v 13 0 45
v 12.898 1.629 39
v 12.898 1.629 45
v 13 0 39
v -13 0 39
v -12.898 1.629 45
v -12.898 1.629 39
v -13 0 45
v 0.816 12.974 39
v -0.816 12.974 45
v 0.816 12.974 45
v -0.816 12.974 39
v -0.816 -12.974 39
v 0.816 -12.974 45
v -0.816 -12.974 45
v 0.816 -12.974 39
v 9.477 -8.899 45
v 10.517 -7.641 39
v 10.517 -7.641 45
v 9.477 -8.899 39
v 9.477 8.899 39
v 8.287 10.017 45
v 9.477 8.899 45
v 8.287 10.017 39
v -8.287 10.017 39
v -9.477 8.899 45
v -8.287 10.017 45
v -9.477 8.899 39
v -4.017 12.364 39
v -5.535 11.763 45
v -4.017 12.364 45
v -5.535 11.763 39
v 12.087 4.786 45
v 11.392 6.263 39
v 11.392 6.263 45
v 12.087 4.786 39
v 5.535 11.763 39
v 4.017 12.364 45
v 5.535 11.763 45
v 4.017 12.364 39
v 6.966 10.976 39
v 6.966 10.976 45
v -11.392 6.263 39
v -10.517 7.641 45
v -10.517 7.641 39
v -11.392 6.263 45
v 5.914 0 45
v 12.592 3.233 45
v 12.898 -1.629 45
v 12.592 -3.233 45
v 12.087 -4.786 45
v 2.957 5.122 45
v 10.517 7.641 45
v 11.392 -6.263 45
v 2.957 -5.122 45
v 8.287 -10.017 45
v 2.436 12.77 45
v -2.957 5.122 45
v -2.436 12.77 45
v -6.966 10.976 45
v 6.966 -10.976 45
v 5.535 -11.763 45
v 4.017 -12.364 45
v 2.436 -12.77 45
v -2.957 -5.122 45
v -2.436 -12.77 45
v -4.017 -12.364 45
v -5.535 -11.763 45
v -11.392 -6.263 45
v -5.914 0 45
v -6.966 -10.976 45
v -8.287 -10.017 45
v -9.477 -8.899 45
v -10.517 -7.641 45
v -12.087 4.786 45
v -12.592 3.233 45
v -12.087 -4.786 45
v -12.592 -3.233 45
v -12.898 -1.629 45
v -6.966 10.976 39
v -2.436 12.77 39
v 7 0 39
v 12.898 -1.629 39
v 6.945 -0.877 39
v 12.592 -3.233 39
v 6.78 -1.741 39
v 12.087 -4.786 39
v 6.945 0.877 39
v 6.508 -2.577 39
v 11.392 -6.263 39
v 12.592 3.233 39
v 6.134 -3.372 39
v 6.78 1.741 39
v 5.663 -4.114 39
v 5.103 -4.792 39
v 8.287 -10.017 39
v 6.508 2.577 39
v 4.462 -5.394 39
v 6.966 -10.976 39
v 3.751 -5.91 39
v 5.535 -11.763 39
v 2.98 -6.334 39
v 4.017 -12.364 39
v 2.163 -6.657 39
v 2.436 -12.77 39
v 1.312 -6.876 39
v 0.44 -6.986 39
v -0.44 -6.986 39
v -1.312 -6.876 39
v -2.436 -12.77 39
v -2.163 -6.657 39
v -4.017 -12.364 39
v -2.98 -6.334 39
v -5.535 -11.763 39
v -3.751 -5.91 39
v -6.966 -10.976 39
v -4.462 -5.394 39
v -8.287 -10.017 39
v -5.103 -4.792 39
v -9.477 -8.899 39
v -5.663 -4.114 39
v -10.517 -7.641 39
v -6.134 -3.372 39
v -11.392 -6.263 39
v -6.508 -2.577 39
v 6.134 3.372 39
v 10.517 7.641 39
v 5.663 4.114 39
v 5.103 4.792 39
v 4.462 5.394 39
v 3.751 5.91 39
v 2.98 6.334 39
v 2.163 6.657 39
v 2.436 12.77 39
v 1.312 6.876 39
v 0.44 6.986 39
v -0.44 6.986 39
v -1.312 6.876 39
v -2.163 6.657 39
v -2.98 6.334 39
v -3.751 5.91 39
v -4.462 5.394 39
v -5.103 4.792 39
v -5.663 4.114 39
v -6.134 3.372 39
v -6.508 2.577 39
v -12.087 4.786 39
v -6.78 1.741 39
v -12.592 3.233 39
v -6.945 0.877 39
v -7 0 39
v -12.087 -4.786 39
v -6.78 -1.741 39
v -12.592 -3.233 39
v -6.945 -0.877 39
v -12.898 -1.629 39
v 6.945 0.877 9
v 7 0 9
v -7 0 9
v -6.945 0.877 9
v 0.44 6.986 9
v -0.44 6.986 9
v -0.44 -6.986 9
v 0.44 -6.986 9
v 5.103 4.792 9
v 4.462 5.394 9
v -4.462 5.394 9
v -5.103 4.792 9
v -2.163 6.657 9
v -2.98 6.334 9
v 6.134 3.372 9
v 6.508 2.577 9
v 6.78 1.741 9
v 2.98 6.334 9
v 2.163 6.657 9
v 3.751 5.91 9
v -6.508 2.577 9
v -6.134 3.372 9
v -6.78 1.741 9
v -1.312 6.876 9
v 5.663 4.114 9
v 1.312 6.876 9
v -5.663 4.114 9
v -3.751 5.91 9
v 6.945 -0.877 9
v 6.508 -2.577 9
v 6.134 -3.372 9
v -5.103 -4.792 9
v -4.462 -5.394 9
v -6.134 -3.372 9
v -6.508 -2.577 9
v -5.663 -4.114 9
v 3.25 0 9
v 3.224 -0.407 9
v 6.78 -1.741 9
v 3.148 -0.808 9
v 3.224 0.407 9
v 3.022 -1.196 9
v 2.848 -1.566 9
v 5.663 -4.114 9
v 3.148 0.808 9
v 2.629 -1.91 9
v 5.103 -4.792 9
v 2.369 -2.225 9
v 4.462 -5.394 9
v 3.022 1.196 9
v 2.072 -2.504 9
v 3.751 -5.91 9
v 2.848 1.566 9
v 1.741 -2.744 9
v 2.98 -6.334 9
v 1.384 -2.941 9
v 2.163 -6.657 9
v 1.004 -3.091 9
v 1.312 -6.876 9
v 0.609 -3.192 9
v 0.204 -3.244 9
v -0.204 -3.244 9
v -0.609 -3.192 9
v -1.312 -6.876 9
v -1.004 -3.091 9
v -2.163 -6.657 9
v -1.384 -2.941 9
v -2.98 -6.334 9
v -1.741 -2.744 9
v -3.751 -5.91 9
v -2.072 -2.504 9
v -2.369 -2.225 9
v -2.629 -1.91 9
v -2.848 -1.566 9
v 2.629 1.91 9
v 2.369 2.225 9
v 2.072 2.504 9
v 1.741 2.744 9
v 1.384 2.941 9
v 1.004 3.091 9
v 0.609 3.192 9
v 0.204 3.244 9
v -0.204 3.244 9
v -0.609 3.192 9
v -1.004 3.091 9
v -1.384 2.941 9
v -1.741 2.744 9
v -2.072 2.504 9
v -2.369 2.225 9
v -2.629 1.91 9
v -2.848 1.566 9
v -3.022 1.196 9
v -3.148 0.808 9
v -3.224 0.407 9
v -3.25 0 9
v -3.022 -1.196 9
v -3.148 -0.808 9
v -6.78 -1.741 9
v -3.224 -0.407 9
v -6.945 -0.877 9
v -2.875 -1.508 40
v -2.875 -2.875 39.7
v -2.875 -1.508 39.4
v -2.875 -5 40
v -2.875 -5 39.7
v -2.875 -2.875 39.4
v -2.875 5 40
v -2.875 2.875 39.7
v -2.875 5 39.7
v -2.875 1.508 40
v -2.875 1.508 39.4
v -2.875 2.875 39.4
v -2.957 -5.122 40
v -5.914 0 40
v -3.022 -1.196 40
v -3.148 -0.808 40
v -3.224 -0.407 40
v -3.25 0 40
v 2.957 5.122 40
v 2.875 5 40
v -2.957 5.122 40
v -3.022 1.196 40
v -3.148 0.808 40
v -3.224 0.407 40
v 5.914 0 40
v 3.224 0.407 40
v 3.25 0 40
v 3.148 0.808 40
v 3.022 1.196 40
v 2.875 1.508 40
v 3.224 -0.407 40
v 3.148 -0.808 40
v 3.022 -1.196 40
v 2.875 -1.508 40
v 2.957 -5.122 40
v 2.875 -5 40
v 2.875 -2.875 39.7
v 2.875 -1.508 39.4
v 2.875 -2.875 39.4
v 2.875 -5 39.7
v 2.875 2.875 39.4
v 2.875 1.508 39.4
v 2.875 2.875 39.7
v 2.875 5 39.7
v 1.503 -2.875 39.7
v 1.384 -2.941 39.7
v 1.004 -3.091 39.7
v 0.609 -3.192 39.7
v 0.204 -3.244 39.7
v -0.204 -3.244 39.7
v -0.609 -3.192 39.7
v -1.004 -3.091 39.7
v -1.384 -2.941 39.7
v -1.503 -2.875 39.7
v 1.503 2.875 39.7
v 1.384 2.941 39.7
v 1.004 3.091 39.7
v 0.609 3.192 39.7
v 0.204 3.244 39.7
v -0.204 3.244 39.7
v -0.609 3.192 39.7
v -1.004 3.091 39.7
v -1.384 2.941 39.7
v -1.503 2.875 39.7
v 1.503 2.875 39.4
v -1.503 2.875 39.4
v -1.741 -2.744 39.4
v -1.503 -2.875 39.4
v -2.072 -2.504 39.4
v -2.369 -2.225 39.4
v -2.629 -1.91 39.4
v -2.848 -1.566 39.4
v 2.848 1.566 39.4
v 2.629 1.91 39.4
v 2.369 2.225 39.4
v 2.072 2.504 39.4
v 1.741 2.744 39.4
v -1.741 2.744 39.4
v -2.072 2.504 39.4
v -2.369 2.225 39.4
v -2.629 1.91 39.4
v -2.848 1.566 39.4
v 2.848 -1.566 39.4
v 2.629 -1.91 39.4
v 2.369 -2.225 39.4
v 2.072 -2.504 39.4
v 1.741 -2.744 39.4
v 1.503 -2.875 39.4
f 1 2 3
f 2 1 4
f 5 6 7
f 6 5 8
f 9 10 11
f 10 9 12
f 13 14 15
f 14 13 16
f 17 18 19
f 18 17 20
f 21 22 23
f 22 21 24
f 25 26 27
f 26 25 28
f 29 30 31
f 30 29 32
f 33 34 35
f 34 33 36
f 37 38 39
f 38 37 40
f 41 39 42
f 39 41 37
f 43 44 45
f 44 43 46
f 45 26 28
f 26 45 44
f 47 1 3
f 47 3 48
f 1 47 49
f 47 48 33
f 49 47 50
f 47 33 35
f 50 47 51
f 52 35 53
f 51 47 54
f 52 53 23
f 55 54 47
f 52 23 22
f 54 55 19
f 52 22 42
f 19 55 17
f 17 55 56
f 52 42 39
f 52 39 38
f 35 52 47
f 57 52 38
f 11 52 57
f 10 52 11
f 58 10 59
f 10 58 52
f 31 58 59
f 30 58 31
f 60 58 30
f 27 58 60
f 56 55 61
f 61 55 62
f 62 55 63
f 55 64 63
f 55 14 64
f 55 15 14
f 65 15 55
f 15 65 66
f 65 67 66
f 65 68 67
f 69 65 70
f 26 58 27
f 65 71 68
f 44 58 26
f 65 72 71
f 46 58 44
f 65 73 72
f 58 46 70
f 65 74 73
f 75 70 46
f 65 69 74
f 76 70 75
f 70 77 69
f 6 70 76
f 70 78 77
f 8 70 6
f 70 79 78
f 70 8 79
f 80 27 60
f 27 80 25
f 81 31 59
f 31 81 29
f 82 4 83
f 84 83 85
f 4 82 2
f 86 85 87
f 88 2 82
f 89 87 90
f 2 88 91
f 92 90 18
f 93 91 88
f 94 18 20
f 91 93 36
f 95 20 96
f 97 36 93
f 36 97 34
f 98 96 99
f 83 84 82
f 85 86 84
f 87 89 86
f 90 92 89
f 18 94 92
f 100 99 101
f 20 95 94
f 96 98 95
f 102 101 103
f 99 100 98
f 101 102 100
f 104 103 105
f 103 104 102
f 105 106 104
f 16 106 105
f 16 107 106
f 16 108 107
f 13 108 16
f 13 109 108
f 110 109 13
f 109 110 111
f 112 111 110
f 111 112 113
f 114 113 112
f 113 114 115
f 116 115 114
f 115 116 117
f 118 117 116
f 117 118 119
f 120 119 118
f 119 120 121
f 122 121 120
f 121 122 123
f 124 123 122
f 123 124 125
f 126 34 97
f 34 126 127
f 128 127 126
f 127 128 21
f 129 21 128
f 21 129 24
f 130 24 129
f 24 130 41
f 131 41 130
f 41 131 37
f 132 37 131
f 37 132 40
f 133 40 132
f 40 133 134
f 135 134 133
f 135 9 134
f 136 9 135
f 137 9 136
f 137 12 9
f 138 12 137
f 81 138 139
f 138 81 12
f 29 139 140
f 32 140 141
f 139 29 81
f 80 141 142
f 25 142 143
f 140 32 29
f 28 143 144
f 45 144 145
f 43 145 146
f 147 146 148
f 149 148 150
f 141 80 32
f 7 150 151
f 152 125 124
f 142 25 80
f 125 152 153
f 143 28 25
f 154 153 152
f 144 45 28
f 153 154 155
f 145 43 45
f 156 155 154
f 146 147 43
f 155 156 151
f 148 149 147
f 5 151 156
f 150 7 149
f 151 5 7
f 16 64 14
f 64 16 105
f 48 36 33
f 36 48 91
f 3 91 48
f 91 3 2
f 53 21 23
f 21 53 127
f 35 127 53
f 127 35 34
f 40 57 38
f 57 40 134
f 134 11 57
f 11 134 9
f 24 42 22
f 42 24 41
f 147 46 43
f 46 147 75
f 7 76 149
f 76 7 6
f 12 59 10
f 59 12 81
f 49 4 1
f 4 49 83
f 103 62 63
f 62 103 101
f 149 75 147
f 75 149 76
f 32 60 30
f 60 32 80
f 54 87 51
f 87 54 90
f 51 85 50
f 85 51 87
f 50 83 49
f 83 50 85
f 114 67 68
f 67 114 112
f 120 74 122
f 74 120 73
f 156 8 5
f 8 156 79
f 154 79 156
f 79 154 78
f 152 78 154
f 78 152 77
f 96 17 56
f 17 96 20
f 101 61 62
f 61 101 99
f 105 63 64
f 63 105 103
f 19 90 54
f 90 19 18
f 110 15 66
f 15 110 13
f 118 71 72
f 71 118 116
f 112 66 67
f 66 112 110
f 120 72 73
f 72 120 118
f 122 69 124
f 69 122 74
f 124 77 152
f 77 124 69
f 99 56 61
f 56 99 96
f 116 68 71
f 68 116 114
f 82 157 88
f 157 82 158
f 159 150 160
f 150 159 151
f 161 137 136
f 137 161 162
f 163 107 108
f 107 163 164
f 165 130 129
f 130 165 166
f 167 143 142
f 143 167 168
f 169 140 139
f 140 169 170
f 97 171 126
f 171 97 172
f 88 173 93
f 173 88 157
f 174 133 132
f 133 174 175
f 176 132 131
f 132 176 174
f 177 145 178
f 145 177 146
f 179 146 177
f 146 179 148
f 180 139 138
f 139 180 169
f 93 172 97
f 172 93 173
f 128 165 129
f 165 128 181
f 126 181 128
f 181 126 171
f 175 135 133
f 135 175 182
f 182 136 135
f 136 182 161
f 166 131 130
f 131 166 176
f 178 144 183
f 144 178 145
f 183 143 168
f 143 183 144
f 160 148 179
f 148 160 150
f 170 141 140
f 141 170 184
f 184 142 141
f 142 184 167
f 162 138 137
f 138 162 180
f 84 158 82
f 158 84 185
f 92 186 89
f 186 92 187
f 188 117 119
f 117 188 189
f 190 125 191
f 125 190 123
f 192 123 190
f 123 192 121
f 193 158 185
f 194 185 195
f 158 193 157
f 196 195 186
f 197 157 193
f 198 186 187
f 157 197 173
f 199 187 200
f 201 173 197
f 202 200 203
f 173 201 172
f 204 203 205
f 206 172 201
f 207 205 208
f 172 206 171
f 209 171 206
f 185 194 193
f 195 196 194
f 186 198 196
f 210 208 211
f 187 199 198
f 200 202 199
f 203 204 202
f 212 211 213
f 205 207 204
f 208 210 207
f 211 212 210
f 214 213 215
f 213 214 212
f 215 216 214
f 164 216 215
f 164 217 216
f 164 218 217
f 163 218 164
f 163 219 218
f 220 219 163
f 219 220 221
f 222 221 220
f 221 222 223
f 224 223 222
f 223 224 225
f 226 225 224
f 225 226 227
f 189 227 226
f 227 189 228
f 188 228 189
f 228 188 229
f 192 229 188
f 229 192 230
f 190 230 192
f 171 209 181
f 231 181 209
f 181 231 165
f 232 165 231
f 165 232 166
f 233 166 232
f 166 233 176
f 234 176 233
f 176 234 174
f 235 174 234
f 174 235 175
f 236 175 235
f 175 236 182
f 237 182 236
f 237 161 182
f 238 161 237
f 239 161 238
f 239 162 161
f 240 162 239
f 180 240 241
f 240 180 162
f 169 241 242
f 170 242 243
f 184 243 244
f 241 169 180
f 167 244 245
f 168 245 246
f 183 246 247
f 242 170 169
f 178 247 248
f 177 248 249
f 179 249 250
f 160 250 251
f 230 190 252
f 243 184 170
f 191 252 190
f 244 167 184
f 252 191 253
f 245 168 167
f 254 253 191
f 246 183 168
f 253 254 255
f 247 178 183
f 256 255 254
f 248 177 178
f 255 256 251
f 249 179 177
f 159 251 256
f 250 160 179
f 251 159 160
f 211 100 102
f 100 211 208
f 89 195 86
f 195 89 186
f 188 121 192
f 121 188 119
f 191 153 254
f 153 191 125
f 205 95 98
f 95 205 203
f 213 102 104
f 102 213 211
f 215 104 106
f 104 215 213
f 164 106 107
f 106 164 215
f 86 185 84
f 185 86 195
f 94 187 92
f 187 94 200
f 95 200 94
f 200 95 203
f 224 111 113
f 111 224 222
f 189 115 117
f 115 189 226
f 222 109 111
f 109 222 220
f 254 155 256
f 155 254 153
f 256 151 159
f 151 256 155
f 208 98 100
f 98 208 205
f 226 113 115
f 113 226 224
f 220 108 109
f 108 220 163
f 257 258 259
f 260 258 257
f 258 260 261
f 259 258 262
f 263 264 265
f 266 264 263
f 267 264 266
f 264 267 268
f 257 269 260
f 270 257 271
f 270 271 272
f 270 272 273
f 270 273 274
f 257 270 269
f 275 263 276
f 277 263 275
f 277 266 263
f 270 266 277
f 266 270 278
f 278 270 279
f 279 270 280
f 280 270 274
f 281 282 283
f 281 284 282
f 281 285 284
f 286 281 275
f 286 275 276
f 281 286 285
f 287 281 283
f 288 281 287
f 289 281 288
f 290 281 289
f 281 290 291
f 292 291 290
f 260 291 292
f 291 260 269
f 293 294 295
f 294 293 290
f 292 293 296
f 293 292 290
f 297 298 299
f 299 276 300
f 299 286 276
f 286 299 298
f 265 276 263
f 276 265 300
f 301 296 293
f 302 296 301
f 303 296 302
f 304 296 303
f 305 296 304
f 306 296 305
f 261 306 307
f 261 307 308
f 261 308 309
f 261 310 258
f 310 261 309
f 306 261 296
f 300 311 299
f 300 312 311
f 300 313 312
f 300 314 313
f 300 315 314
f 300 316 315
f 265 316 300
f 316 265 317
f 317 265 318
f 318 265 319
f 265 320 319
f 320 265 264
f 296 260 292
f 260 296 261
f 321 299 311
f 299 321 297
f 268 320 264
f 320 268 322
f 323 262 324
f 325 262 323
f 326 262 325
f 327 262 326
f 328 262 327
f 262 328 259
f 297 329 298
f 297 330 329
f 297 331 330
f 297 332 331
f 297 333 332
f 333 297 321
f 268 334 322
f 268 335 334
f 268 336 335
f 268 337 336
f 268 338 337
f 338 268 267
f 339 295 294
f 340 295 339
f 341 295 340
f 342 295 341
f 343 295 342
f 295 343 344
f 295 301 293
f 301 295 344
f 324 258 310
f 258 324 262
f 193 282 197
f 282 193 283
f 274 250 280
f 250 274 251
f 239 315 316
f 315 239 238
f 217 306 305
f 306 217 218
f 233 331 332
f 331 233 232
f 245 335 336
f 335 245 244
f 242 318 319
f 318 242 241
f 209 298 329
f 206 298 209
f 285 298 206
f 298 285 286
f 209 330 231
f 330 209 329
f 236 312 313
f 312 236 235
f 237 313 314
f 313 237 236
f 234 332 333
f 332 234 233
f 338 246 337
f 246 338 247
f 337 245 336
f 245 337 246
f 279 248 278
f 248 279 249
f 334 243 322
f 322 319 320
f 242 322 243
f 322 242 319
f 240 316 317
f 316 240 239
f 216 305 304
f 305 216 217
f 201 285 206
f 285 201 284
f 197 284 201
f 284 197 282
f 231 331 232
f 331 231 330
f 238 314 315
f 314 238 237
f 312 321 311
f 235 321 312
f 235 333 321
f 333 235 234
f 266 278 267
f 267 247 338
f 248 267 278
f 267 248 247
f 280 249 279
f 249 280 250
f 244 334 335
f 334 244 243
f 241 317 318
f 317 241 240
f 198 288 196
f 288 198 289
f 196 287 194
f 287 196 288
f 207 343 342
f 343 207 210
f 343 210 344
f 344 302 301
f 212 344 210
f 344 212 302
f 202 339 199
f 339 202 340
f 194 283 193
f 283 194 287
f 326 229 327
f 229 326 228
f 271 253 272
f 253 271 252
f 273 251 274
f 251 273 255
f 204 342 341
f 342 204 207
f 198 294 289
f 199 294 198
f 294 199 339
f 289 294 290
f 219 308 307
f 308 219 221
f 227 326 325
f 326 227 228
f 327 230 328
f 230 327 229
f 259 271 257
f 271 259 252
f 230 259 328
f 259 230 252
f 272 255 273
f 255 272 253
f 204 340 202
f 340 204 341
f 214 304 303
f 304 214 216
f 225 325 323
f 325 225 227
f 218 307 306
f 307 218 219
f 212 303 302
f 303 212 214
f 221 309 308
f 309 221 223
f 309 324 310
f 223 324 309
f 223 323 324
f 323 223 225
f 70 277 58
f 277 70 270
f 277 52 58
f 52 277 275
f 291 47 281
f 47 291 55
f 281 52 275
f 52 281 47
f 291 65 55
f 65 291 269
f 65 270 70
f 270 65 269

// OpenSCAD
$fn = 50;


difference() {
	union() {
		translate(v = [0, 0, 39.0000000000]) {
			cylinder(h = 6, r = 13.0000000000);
		}
		translate(v = [0, 0, 9.0000000000]) {
			cylinder(h = 36, r = 7.0000000000);
		}
	}
	union() {
		translate(v = [0, 0, 45]) {
			rotate(a = [0, 0, 0]) {
				difference() {
					union() {
						#translate(v = [-2.8750000000, -5.0000000000, -5.3000000000]) {
							cube(size = [5.7500000000, 10, 0.3000000000]);
						}
						#translate(v = [-2.8750000000, -2.8750000000, -5.6000000000]) {
							cube(size = [5.7500000000, 5.7500000000, 0.3000000000]);
						}
						#translate(v = [-2.8750000000, -5.0000000000, 0]) {
							cube(size = [5.7500000000, 10, 0.3000000000]);
						}
						#translate(v = [-2.8750000000, -2.8750000000, 0.3000000000]) {
							cube(size = [5.7500000000, 5.7500000000, 0.3000000000]);
						}
						#translate(v = [0, 0, -100.0000000000]) {
							cylinder(h = 200, r = 3.2500000000);
						}
						translate(v = [0, 0, -5]) {
							#linear_extrude(height = 5) {
								polygon(points = [[5.9142500000, 0.0000000000], [2.9571250000, 5.1218907443], [-2.9571250000, 5.1218907443], [-5.9142500000, 0.0000000000], [-2.9571250000, -5.1218907443], [2.9571250000, -5.1218907443]]);
							}
						}
						#translate(v = [-2.8750000000, -5.0000000000, -5.3000000000]) {
							cube(size = [5.7500000000, 10, 0.3000000000]);
						}
						#translate(v = [-2.8750000000, -2.8750000000, -5.6000000000]) {
							cube(size = [5.7500000000, 5.7500000000, 0.3000000000]);
						}
						#translate(v = [-2.8750000000, -5.0000000000, 0]) {
							cube(size = [5.7500000000, 10, 0.3000000000]);
						}
						#translate(v = [-2.8750000000, -2.8750000000, 0.3000000000]) {
							cube(size = [5.7500000000, 5.7500000000, 0.3000000000]);
						}
						#translate(v = [0, 0, -100.0000000000]) {
							cylinder(h = 200, r = 3.2500000000);
						}
						#translate(v = [-2.8750000000, -5.0000000000, -5.3000000000]) {
							cube(size = [5.7500000000, 10, 0.3000000000]);
						}
						#translate(v = [-2.8750000000, -2.8750000000, -5.6000000000]) {
							cube(size = [5.7500000000, 5.7500000000, 0.3000000000]);
						}
						#translate(v = [-2.8750000000, -5.0000000000, 0]) {
							cube(size = [5.7500000000, 10, 0.3000000000]);
						}
						#translate(v = [-2.8750000000, -2.8750000000, 0.3000000000]) {
							cube(size = [5.7500000000, 5.7500000000, 0.3000000000]);
						}
						#translate(v = [0, 0, -100.0000000000]) {
							cylinder(h = 200, r = 3.2500000000);
						}
					}
					union();
				}
			}
		}
		#translate(v = [0, 0, -100.0000000000]) {
			cylinder(h = 200, r = 3.2500000000);
		}
	}
}
